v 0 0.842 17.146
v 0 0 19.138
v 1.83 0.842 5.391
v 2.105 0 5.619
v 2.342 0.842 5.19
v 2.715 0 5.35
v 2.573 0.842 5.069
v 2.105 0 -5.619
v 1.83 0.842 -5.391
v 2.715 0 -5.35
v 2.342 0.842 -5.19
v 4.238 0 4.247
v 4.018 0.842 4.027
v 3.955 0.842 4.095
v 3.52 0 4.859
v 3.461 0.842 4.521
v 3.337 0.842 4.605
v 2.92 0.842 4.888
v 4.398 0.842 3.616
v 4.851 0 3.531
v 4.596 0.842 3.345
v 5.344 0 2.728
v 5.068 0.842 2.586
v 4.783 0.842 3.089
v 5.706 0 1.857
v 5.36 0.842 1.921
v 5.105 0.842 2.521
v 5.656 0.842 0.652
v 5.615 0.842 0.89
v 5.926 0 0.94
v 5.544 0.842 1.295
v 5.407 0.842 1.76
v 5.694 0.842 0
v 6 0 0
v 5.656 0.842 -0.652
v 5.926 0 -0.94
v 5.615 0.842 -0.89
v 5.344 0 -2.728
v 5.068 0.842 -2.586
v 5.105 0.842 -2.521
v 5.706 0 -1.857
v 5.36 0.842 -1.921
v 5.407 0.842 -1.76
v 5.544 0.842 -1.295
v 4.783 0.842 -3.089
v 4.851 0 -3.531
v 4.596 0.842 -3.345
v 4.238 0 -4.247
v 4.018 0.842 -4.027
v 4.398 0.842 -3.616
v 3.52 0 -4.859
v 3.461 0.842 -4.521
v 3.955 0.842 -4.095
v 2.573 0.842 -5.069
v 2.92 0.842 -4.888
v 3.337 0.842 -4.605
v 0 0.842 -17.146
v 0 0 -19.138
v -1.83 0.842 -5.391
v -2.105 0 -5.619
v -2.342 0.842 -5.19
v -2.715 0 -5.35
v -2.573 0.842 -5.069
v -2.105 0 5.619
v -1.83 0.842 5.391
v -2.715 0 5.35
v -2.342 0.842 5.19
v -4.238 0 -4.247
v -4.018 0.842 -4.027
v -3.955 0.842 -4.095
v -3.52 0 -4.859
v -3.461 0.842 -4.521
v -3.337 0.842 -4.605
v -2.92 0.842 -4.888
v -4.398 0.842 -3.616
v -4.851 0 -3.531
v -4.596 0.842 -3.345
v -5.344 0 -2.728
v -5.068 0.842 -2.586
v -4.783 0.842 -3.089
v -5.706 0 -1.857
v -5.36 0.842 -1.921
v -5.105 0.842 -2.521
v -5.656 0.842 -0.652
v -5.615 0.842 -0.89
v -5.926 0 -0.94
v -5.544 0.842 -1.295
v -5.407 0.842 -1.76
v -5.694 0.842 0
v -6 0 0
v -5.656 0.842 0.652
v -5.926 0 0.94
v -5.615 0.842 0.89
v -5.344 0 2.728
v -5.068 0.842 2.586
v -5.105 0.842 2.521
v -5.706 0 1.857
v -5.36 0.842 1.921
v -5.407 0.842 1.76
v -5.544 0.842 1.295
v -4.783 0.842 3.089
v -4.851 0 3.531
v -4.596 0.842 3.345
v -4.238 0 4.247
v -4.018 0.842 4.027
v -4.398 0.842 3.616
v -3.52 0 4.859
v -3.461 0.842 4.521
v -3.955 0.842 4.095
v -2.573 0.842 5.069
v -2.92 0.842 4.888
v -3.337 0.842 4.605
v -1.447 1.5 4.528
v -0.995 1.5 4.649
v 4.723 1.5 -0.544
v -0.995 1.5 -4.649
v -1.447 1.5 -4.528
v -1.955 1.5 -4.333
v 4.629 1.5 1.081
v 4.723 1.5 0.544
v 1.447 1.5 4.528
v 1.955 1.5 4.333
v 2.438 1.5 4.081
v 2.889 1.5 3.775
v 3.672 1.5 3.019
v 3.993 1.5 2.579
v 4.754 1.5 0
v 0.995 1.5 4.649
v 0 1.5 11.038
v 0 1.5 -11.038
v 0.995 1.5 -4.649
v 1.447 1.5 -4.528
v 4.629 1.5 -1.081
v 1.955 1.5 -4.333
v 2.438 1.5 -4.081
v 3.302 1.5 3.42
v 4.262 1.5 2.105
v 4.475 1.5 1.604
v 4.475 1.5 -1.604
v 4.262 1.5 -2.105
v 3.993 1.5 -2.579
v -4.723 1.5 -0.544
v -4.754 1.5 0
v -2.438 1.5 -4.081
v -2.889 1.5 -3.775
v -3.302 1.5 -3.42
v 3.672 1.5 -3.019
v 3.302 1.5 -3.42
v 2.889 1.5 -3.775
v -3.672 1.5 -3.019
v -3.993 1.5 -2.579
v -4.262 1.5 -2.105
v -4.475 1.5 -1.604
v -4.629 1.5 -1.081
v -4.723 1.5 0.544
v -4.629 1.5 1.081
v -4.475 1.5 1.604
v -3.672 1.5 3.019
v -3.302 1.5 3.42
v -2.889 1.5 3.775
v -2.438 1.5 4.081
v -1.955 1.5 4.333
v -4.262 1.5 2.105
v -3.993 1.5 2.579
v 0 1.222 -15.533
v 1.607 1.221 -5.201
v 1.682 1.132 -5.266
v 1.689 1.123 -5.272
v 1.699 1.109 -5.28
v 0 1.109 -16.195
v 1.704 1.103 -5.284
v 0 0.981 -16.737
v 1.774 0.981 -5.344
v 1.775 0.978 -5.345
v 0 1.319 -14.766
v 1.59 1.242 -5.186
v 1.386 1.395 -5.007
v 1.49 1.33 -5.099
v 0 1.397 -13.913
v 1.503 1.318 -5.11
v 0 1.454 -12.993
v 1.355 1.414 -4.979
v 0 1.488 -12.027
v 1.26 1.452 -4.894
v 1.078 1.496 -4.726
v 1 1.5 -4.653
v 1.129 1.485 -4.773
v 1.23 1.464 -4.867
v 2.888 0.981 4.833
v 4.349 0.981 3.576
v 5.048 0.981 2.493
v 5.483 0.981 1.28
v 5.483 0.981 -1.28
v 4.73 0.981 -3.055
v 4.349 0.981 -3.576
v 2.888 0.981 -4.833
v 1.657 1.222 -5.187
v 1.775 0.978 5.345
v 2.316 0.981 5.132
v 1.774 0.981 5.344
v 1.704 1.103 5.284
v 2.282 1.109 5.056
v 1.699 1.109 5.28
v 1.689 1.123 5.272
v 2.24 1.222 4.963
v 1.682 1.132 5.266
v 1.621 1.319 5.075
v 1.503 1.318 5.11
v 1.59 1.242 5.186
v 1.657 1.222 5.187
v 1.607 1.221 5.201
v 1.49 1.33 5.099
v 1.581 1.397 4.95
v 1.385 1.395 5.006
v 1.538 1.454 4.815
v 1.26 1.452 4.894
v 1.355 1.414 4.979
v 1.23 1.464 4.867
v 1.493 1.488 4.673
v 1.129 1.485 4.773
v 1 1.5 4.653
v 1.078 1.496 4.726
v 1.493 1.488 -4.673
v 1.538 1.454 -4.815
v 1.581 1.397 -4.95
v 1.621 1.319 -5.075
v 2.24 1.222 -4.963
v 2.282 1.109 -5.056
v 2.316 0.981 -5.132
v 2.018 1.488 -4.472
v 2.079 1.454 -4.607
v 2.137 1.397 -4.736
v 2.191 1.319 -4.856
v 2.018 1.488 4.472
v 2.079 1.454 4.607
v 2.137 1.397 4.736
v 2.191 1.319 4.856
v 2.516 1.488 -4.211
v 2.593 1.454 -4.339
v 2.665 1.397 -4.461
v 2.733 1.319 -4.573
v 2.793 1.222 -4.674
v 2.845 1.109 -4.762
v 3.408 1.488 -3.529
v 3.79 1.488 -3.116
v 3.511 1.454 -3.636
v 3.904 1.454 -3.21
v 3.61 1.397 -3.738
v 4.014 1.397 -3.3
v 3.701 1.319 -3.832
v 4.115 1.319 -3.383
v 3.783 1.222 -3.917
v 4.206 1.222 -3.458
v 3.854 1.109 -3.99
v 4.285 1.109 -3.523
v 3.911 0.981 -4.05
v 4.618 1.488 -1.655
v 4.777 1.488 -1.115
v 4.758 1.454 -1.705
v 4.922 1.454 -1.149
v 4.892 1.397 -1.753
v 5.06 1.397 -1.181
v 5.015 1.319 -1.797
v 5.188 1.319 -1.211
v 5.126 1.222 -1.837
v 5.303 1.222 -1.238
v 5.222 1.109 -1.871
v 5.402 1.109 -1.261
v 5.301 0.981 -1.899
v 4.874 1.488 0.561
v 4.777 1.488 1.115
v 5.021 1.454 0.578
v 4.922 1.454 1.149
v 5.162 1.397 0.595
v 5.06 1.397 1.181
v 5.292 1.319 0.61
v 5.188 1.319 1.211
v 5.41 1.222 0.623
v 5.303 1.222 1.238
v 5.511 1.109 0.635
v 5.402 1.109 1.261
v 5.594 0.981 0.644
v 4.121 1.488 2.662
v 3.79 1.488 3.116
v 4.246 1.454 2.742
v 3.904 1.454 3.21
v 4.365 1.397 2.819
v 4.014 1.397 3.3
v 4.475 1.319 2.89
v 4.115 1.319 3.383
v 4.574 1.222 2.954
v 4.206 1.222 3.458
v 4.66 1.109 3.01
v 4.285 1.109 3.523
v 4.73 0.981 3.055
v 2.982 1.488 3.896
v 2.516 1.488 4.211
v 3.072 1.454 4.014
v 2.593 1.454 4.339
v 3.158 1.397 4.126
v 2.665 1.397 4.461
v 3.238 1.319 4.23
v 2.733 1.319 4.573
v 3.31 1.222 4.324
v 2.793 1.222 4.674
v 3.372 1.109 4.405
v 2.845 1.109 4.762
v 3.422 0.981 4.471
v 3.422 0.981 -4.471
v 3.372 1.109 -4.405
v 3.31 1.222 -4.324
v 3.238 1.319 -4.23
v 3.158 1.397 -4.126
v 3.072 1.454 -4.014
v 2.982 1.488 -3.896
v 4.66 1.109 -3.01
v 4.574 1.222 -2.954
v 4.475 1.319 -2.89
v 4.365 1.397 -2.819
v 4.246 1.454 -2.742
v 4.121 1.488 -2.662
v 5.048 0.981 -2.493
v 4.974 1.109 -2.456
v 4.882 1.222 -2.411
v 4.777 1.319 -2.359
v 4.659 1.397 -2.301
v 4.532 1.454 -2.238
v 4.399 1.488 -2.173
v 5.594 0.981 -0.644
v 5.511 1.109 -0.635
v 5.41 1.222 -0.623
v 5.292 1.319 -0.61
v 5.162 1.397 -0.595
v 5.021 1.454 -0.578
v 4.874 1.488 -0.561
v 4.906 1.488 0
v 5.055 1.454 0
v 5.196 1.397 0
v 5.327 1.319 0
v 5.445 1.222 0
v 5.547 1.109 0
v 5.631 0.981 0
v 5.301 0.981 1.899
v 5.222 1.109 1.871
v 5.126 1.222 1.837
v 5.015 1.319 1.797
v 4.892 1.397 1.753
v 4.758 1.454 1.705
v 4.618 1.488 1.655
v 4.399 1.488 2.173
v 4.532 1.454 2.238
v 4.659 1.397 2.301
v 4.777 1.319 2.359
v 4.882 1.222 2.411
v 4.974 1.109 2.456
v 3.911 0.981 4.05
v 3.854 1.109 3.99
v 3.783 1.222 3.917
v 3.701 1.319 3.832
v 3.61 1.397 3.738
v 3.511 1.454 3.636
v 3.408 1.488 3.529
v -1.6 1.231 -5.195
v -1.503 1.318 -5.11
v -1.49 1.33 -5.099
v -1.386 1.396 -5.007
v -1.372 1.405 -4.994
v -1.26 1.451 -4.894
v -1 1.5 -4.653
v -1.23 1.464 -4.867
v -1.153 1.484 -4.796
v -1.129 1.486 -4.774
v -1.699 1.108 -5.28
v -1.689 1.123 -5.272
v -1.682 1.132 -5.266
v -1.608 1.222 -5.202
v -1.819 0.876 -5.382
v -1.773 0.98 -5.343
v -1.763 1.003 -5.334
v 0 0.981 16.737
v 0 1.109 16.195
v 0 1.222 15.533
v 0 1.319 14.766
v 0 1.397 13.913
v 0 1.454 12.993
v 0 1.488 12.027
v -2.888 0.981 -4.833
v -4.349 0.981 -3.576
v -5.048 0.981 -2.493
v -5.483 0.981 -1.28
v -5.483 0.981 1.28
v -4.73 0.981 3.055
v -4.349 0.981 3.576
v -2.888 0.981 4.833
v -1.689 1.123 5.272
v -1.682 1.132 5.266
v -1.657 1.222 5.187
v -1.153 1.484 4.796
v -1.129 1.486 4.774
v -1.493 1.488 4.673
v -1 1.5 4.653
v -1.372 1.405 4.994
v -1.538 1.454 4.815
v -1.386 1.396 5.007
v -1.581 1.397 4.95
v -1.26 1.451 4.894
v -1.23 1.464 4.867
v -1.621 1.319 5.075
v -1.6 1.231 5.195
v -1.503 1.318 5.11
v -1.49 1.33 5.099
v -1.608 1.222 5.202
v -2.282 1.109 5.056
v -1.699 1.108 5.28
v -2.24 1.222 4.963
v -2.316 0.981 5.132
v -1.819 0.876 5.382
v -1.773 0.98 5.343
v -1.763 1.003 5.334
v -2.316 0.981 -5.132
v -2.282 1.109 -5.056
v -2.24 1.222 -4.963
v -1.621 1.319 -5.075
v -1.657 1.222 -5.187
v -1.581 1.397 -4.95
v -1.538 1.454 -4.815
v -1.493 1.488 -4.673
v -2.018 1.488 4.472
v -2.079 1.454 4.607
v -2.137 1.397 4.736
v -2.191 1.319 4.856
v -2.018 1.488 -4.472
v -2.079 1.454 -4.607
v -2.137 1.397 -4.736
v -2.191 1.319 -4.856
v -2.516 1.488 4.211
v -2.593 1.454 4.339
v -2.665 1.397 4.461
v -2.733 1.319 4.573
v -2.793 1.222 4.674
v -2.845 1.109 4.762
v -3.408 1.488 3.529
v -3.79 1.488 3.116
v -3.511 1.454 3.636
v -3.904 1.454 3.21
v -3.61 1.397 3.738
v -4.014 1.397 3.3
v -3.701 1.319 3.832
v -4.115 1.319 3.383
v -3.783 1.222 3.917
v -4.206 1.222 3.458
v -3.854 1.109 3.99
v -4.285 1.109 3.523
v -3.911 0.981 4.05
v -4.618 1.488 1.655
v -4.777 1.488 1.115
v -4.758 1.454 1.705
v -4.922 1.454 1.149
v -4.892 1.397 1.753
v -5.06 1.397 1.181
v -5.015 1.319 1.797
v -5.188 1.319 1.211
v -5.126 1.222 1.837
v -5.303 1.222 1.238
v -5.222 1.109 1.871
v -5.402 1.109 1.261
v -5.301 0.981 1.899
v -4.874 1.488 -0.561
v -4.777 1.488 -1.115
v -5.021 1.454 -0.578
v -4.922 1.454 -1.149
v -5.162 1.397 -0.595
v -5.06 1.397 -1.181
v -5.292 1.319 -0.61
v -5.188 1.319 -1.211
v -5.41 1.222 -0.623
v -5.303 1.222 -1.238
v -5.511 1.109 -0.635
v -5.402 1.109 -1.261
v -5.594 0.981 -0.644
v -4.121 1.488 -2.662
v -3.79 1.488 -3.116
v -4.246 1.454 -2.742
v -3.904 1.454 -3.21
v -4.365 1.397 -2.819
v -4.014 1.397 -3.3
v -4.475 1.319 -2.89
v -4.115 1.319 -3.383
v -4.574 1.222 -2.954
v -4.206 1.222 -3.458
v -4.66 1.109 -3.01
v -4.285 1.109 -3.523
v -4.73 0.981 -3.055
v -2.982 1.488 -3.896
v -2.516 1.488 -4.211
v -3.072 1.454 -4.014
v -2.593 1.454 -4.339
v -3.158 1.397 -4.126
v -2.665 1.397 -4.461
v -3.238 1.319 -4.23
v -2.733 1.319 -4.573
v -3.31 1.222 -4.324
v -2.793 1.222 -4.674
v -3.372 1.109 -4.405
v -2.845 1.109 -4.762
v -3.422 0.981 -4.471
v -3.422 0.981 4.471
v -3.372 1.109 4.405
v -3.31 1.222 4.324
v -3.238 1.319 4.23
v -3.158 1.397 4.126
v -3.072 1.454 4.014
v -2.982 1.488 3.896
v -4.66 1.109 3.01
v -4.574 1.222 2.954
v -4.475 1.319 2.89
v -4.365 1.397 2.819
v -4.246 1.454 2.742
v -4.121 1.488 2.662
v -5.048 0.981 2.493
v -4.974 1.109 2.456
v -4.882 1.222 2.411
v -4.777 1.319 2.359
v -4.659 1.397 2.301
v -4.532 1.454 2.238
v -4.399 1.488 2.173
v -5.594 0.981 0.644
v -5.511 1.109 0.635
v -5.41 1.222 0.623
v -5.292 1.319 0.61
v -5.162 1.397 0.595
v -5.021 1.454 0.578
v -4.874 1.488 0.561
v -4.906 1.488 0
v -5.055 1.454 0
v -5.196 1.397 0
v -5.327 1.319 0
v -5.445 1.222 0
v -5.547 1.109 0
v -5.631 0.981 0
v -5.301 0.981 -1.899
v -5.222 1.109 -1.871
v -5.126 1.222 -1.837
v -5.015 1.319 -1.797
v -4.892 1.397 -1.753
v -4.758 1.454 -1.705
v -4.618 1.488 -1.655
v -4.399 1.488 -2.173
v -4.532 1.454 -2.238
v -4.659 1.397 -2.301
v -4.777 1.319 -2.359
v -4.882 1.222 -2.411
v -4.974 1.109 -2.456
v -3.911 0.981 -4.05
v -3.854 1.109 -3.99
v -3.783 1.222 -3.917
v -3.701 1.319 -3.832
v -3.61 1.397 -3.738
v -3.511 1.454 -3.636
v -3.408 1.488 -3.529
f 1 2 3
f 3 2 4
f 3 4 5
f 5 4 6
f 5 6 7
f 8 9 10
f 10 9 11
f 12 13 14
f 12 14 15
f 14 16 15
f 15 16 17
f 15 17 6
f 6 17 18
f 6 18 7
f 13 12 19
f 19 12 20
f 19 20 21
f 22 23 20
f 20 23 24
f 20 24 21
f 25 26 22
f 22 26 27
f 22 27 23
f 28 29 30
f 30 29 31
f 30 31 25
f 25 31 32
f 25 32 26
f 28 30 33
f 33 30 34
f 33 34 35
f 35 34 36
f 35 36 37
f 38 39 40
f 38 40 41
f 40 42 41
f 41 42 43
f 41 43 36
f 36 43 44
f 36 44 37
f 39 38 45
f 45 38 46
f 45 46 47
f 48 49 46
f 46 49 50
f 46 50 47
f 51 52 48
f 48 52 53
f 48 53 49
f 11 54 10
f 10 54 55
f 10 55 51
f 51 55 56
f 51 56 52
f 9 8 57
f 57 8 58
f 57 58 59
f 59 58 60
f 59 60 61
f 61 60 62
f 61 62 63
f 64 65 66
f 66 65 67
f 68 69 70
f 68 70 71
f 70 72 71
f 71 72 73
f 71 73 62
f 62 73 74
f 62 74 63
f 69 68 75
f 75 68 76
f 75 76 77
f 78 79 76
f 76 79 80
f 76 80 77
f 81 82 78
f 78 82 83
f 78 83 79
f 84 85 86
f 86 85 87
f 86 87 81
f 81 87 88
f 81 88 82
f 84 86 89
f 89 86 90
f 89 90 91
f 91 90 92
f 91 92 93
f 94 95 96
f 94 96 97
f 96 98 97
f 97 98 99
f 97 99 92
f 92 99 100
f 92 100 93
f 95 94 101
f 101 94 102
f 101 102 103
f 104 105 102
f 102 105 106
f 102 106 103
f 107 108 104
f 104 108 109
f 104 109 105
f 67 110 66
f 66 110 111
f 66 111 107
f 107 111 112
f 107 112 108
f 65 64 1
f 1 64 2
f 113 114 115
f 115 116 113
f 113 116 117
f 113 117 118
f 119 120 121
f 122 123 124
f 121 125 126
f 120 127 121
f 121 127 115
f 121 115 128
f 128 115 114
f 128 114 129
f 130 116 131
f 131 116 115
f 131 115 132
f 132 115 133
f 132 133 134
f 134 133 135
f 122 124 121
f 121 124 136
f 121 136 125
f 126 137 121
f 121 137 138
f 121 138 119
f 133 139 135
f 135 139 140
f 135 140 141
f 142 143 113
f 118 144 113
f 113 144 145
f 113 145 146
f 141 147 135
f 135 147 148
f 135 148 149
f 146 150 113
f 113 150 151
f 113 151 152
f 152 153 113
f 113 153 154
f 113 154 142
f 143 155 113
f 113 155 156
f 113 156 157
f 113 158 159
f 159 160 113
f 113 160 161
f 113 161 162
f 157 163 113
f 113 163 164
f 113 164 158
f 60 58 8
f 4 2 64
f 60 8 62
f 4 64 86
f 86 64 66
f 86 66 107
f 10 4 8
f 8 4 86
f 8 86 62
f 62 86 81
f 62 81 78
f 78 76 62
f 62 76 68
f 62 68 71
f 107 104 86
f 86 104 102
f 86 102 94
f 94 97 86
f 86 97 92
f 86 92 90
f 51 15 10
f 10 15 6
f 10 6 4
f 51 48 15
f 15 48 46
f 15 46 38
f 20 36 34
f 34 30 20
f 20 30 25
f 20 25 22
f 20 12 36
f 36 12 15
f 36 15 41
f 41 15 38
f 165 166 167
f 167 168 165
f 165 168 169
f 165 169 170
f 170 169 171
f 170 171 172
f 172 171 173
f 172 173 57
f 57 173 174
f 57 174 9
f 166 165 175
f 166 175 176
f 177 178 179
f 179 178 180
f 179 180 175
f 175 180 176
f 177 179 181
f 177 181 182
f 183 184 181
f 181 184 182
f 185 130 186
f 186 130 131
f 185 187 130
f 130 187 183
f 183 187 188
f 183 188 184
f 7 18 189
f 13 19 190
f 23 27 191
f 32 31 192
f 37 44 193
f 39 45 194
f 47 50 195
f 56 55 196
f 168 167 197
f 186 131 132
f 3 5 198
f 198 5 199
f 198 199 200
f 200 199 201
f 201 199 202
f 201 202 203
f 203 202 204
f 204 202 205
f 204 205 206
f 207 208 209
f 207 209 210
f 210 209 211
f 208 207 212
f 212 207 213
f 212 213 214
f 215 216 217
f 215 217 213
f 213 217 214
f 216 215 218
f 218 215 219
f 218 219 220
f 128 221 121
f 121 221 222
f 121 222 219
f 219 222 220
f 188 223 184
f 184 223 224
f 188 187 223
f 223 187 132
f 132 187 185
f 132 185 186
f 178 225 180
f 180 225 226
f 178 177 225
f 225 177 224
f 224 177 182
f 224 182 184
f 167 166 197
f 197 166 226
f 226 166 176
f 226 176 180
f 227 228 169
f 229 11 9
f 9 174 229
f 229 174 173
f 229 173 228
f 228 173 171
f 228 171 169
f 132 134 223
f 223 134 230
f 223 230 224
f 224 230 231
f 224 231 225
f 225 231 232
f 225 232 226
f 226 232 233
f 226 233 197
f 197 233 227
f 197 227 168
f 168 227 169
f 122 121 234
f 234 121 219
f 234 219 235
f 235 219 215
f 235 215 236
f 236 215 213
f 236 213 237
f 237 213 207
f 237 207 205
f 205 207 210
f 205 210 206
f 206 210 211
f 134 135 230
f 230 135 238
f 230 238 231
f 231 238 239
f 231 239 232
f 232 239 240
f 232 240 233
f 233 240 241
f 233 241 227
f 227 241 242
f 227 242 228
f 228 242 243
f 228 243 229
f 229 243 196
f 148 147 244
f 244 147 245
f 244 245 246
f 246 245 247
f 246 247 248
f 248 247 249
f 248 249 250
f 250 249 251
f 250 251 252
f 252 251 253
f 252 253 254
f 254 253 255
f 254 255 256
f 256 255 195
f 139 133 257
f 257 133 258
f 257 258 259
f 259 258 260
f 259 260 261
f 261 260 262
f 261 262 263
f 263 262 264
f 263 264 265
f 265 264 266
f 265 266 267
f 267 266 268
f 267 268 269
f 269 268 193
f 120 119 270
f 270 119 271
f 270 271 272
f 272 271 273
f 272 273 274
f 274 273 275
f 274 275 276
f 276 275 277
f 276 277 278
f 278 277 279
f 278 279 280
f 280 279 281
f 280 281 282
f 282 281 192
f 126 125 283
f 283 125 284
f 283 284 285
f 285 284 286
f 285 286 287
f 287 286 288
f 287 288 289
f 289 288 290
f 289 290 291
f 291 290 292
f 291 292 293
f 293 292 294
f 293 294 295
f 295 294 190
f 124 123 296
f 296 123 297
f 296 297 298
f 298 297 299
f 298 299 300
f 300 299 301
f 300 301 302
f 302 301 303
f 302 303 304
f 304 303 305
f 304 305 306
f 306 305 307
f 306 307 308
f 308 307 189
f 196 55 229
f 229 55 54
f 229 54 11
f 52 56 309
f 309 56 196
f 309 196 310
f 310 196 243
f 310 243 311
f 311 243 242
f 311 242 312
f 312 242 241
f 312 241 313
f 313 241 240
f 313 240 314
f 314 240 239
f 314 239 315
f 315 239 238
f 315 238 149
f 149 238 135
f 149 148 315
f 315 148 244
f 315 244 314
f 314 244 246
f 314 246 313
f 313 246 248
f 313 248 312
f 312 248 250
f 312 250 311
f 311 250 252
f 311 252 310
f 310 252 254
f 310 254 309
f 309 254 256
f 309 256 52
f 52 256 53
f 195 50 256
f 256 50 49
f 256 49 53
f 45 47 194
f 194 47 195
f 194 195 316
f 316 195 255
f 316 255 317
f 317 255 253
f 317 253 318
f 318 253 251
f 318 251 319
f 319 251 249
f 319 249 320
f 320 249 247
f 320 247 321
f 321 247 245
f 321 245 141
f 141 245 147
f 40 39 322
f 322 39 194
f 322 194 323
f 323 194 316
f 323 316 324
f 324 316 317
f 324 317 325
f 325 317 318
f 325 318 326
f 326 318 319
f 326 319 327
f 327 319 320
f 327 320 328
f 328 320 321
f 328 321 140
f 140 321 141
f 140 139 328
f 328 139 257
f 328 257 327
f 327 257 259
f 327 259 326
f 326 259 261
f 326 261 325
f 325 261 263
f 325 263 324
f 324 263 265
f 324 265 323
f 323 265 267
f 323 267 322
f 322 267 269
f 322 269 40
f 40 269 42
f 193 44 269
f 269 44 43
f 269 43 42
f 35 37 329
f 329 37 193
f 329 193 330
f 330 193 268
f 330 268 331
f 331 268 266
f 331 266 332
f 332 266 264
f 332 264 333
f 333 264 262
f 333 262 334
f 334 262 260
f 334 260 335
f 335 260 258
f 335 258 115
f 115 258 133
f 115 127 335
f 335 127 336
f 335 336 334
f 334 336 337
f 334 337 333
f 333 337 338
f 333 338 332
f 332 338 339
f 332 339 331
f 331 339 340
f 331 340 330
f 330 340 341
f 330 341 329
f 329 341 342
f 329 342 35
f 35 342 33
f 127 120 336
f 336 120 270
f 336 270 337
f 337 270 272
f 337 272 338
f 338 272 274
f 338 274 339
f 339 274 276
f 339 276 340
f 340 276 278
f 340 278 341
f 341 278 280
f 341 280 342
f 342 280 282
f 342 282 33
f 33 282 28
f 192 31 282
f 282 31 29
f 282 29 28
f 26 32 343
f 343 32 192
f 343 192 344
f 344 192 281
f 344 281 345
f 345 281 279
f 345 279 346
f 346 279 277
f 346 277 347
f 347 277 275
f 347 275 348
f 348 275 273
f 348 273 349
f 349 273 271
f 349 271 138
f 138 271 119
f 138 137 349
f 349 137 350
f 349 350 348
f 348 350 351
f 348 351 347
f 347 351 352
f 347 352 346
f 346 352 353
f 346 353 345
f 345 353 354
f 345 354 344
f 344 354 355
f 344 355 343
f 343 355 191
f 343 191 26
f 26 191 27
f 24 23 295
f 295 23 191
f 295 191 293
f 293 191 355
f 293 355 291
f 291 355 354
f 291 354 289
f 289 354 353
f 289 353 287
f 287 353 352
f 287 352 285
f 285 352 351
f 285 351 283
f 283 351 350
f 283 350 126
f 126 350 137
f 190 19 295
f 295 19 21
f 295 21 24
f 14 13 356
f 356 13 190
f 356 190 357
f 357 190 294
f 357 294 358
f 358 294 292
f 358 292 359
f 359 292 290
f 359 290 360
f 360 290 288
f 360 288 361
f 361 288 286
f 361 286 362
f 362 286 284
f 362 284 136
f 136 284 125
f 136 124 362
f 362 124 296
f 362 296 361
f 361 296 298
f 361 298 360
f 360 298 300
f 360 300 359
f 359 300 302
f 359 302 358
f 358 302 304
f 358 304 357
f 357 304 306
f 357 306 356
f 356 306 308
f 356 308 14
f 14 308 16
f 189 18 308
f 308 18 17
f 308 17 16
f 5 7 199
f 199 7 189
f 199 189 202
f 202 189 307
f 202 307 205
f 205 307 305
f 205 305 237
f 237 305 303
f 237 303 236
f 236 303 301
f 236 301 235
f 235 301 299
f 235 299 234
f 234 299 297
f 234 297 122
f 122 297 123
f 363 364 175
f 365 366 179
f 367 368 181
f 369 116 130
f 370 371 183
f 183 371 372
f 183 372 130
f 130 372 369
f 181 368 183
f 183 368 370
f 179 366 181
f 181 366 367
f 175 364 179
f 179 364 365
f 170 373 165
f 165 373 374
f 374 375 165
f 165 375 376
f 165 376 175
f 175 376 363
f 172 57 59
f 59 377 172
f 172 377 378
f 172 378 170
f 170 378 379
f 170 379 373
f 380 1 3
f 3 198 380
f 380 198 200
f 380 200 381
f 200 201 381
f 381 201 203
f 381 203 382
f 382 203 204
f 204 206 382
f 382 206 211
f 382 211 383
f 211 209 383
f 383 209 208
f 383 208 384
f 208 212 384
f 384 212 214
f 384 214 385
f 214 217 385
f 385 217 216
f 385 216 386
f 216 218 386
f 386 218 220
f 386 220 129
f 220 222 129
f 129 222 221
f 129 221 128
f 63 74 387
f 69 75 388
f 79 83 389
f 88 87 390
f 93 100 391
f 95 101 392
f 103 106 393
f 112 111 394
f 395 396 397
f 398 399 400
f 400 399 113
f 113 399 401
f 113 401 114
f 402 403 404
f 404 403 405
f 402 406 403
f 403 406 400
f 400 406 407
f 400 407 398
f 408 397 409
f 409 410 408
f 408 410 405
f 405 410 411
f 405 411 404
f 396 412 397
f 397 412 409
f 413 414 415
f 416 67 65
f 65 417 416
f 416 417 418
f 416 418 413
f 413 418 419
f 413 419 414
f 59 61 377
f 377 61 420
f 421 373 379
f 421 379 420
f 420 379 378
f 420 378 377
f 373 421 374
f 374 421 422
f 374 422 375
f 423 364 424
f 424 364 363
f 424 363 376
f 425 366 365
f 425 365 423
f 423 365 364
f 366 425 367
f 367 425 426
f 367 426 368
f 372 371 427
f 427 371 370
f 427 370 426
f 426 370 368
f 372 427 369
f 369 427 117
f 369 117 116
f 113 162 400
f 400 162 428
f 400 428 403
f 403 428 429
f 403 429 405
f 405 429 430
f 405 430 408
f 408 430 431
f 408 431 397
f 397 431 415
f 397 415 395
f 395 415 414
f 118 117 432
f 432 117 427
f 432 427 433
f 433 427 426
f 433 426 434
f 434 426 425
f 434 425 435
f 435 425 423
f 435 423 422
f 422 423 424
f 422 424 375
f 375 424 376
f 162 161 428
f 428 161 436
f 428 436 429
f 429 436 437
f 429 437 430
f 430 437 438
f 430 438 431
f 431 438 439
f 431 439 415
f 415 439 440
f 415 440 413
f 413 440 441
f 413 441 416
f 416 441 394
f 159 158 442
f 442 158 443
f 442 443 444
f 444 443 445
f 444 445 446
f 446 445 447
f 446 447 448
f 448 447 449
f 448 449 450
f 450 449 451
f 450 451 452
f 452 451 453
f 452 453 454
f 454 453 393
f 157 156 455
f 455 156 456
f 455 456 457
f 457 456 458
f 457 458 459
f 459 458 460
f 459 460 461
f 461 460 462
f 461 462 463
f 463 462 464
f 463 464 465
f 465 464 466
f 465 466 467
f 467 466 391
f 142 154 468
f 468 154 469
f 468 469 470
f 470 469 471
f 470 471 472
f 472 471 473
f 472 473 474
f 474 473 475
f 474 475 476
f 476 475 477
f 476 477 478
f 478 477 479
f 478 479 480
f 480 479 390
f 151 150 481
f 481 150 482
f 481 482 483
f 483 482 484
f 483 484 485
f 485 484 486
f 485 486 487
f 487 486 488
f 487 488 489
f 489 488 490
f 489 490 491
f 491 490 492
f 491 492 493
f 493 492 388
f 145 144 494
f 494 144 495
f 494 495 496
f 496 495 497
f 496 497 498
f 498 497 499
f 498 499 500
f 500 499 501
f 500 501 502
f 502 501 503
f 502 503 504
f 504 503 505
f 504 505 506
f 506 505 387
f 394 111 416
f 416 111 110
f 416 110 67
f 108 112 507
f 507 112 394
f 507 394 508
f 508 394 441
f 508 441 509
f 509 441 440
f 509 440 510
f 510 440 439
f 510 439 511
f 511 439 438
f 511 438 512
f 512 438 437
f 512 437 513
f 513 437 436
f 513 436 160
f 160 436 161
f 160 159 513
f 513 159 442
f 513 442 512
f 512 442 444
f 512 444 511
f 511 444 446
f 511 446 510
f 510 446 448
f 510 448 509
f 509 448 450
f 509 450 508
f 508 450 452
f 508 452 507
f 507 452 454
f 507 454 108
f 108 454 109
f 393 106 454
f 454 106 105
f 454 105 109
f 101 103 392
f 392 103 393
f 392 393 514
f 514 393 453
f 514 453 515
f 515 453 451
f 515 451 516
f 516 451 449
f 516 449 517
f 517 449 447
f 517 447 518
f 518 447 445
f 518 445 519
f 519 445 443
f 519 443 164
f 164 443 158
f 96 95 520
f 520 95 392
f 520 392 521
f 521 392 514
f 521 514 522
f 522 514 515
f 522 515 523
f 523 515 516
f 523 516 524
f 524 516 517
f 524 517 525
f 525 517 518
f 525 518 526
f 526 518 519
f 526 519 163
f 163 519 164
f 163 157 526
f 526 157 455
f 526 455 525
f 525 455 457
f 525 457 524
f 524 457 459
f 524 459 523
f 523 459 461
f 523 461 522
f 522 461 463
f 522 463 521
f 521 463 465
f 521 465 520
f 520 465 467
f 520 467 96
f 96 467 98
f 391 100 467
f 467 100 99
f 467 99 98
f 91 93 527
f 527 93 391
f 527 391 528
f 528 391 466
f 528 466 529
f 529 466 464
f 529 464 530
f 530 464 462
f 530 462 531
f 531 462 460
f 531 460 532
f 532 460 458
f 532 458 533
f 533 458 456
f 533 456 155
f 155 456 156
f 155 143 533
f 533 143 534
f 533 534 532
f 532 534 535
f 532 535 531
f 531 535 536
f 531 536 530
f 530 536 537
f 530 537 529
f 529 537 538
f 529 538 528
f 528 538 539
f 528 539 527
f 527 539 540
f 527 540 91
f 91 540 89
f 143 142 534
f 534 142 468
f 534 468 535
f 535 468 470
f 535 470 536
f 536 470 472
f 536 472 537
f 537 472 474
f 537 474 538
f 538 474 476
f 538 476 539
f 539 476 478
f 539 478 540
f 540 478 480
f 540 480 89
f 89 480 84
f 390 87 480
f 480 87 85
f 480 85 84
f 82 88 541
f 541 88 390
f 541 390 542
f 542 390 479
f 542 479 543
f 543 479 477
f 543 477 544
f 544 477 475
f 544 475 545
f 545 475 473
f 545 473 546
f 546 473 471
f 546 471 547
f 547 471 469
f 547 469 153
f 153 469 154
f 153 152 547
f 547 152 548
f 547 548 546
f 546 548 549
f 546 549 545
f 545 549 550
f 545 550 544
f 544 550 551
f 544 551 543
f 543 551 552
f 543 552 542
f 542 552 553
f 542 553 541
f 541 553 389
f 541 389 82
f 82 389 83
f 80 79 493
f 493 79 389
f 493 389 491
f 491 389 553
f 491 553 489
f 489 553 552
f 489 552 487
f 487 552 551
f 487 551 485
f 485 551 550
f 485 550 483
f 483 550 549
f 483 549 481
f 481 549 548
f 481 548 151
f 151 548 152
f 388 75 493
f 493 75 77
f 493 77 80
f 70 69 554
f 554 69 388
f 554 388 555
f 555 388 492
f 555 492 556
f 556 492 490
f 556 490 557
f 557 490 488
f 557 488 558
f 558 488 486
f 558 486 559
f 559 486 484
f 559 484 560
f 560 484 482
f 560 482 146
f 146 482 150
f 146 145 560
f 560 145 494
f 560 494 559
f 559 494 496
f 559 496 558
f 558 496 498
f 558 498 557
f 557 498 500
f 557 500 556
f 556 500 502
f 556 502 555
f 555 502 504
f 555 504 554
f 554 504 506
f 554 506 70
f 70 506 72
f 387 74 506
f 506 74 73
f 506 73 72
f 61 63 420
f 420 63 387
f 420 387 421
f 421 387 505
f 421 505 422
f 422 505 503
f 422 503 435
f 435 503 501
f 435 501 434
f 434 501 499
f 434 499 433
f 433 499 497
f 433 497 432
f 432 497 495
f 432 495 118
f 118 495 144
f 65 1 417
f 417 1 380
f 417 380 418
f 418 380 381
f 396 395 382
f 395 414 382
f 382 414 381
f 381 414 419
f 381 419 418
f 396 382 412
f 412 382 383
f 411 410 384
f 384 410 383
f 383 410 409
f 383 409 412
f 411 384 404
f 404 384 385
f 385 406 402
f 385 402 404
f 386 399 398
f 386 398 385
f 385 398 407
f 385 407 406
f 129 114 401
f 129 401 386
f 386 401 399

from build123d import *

# Parameters (mm, degrees)
BOSS_EXTRUDE1_DEPTH = 1.5
BOSS_EXTRUDE1_DRAFT = 20
FILLET1_R           = 1


with BuildPart() as part:
    # Sketch1 → Boss-Extrude1 (with draft: the straight prism first)
    with BuildSketch(Plane(origin=(0, 0, 0), x_dir=(1, 0, 0), z_dir=(0, 1, 0))):
        with BuildLine():
            Line((2.105043255, 5.618611296), (0, 19.137920482))
            Line((0, 19.137920482), (-2.105043255, 5.618611296))
            ThreePointArc((-2.105043255, 5.618611296), (-6, 0), (-2.105043255, -5.618611296))
            Line((-2.105043255, -5.618611296), (0, -19.137920482))
            Line((0, -19.137920482), (2.105043255, -5.618611296))
            ThreePointArc((2.105043255, -5.618611296), (6, 0), (2.105043255, 5.618611296))
        make_face()
    extrude(amount=BOSS_EXTRUDE1_DEPTH)
    # Boss-Extrude1: the draft: its side faces are tilted about the plane it starts from
    boss_extrude1_sides = [part.faces().sort_by_distance(p)[0] for p in [
        (1.052521627, 0.75, -12.378265889),
        (-1.052521627, 0.75, -12.378265889),
        (-6, 0.75, 0),
        (-1.052521627, 0.75, 12.378265889),
        (1.052521627, 0.75, 12.378265889),
        (6, 0.75, 0),
    ]]
    draft(boss_extrude1_sides, Plane(origin=(0, 0, 0), x_dir=(1, 0, 0), z_dir=(0, 1, 0)), BOSS_EXTRUDE1_DRAFT)

    # Fillet1
    fillet1_edges = [part.edges().sort_by_distance(p)[0] for p in [
        (-0.80814003, 1.5, 10.399206057),
        (-5.454044649, 1.5, 0),
        (-0.80814003, 1.5, -10.399206057),
        (0.80814003, 1.5, -10.399206057),
        (5.454044649, 1.5, 0),
        (0.80814003, 1.5, 10.399206057),
    ]]
    fillet(fillet1_edges, radius=FILLET1_R)


solid = part.part
